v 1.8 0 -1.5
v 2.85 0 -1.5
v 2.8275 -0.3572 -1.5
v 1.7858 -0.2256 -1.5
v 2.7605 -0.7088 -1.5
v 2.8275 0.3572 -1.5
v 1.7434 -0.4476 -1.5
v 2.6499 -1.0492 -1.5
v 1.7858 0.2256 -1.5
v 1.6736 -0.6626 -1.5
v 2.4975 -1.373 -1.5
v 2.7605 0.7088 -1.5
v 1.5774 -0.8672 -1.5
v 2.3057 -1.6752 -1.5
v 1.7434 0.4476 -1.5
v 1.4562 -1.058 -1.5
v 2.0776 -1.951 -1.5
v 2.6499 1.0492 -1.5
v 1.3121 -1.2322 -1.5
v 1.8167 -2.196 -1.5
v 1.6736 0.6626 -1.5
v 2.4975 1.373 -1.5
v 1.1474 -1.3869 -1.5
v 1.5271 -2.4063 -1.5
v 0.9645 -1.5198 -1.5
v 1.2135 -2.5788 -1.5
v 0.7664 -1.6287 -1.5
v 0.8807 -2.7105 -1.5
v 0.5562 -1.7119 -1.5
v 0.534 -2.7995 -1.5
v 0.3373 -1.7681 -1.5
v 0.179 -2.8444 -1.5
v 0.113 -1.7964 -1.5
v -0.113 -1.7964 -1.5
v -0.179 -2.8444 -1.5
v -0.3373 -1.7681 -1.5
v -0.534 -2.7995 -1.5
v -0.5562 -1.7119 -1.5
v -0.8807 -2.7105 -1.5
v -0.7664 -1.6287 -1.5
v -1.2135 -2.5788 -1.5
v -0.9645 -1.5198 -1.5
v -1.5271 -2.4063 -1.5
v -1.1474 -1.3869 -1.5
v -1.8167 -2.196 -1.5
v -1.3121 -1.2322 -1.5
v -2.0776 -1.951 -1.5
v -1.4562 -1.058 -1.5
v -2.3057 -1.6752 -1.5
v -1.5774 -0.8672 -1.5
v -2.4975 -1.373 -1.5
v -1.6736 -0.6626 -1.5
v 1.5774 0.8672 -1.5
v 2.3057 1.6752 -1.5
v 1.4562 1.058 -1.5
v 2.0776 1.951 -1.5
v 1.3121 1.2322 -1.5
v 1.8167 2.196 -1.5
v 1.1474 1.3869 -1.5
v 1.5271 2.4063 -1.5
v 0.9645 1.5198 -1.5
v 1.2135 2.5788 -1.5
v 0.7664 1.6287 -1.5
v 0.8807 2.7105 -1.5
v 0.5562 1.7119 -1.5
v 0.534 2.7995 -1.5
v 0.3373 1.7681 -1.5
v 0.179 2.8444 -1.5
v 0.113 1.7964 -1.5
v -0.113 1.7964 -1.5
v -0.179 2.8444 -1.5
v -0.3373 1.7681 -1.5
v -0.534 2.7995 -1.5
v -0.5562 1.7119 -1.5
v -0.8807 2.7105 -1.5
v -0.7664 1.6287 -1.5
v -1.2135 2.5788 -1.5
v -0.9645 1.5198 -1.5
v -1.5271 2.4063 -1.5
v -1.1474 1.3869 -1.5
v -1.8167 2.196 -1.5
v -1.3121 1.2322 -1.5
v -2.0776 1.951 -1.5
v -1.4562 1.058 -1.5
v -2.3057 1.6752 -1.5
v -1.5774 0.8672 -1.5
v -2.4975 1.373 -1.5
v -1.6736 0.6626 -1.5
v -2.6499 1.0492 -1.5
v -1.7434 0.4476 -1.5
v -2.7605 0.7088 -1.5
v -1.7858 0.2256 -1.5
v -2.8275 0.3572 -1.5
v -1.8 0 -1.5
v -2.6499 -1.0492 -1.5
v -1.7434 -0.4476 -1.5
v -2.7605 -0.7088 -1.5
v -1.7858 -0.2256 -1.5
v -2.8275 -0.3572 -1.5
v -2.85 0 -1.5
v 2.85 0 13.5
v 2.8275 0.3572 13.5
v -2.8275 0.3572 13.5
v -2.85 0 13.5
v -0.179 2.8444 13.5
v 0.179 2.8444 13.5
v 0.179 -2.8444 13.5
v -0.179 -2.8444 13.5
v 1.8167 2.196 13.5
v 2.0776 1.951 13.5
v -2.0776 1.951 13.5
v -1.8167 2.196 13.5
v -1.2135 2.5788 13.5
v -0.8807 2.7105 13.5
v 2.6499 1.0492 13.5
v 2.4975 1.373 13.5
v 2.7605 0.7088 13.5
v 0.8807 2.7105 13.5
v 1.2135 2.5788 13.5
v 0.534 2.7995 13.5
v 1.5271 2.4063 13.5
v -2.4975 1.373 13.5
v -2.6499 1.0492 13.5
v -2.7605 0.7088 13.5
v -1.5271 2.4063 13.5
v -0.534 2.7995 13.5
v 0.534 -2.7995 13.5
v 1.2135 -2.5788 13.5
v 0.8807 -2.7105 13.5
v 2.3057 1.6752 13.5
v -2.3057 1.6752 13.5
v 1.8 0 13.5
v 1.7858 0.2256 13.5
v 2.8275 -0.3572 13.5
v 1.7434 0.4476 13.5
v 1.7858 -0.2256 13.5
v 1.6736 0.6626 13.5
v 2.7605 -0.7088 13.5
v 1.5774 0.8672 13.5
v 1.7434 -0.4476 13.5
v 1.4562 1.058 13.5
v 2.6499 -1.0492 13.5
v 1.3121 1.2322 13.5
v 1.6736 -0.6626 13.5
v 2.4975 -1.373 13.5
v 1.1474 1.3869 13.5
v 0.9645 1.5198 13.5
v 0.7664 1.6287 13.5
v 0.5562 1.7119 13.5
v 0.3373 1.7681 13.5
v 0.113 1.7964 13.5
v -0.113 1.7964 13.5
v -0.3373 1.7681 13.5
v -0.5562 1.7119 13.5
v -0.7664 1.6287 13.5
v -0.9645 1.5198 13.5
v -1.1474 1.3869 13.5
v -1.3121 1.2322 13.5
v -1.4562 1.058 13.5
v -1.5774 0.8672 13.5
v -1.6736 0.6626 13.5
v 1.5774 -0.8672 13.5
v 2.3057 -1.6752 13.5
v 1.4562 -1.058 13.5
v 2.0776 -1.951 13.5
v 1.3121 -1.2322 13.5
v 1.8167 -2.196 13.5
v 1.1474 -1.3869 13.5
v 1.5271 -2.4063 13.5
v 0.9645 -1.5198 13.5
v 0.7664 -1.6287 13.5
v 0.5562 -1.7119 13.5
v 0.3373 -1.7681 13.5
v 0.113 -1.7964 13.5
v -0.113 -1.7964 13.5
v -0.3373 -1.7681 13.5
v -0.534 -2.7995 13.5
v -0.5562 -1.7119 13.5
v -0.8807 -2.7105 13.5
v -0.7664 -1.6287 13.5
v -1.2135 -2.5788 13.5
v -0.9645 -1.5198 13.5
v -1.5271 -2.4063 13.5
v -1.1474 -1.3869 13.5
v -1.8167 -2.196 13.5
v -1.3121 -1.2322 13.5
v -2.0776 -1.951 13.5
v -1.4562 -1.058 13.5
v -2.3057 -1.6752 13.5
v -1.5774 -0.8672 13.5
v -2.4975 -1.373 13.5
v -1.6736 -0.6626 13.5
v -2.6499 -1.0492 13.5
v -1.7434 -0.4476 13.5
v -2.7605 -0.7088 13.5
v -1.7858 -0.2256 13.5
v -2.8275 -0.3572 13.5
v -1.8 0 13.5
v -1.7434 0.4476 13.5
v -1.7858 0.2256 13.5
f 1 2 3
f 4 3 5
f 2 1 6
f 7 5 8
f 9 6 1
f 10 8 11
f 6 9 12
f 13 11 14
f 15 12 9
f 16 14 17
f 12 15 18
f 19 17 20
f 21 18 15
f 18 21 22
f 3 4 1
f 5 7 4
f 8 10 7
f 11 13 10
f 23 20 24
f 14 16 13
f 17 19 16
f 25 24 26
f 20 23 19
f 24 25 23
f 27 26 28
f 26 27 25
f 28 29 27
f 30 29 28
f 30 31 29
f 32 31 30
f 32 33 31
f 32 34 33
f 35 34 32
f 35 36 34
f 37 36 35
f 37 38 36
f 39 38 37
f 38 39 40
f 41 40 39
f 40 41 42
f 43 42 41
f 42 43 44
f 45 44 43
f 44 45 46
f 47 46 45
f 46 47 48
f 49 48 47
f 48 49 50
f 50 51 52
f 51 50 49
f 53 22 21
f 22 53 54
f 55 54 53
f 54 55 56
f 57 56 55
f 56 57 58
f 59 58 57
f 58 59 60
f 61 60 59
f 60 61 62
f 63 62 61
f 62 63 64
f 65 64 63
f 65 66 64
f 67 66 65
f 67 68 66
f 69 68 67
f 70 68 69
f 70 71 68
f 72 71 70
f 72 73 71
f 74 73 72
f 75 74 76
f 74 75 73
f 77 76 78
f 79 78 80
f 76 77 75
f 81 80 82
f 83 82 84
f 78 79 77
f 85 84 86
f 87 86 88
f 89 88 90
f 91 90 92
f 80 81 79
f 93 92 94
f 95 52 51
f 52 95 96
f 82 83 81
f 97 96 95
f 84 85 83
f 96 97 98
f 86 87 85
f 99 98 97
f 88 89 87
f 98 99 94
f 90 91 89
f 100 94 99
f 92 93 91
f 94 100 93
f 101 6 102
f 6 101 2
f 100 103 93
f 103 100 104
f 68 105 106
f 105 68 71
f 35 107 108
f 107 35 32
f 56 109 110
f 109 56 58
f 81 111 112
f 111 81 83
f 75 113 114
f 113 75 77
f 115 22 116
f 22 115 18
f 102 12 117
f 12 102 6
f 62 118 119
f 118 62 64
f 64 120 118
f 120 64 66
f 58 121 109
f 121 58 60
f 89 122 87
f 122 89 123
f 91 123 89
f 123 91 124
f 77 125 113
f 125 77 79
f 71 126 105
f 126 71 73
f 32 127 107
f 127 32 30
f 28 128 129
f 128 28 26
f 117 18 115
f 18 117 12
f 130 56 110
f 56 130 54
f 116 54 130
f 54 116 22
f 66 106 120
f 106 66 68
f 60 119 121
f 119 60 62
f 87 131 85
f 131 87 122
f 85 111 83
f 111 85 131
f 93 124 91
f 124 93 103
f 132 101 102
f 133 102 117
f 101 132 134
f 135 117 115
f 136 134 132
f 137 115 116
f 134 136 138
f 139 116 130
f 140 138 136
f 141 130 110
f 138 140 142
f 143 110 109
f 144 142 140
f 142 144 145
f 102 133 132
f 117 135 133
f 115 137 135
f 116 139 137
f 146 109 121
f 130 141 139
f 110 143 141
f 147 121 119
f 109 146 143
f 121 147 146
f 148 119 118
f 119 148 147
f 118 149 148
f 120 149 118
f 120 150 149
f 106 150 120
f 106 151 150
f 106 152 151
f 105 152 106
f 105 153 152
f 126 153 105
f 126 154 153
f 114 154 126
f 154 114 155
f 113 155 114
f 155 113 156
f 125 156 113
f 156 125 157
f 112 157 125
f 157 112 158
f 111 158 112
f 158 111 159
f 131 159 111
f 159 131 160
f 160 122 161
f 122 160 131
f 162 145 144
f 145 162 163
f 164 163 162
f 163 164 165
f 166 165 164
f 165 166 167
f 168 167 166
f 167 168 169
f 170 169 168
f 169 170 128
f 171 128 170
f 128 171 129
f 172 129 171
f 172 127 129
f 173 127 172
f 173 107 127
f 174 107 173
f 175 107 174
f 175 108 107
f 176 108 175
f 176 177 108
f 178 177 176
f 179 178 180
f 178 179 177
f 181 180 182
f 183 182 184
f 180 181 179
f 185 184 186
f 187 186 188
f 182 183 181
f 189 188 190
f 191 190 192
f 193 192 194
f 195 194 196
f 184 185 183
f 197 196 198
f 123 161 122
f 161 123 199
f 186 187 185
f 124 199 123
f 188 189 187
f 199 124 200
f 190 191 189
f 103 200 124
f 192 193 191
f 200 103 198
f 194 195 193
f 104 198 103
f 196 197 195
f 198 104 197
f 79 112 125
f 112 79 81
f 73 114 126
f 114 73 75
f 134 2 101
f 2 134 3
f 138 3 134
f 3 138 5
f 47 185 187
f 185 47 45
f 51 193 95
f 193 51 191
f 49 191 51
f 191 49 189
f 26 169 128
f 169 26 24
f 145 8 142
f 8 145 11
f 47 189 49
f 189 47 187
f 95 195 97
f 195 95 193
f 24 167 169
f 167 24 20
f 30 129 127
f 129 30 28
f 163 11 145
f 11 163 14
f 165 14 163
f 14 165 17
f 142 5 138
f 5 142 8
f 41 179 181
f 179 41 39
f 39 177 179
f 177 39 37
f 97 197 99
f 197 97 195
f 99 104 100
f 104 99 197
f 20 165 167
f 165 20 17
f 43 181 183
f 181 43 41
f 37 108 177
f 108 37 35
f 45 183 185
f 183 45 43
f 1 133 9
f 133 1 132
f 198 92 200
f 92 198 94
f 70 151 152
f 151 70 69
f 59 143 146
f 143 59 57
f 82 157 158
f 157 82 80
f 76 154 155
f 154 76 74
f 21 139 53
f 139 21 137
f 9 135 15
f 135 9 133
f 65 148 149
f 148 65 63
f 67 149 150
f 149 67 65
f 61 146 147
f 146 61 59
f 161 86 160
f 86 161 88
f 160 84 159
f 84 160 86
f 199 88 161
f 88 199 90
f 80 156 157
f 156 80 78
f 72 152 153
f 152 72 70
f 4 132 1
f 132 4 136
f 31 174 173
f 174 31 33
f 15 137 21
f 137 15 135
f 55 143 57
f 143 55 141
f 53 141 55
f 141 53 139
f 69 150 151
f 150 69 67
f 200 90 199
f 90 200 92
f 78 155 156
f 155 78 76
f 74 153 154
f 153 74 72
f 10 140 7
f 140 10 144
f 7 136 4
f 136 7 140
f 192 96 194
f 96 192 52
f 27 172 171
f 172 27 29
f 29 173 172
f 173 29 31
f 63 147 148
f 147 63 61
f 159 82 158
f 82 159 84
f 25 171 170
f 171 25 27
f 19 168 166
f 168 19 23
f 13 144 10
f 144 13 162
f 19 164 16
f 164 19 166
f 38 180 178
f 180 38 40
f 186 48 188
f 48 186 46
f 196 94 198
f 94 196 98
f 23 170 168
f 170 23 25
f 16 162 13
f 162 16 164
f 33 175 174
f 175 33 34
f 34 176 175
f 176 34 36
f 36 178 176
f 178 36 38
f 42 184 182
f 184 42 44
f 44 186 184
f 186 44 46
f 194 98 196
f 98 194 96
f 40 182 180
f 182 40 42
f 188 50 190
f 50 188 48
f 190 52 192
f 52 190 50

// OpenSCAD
$fn = 50;


difference() {
	union() {
		translate(v = [0, 0, -1.5000000000]) {
			rotate(a = [0, 0, 0]) {
				cylinder(h = 3, r = 1.0000000000);
			}
		}
		translate(v = [0, 0, -1.5000000000]) {
			rotate(a = [0, 0, 0]) {
				cylinder(h = 15, r = 2.8500000000);
			}
		}
	}
	union() {
		translate(v = [0, 0, -125.0000000000]) {
			rotate(a = [0, 0, 0]) {
				cylinder(h = 250, r = 1.8000000000);
			}
		}
	}
}
